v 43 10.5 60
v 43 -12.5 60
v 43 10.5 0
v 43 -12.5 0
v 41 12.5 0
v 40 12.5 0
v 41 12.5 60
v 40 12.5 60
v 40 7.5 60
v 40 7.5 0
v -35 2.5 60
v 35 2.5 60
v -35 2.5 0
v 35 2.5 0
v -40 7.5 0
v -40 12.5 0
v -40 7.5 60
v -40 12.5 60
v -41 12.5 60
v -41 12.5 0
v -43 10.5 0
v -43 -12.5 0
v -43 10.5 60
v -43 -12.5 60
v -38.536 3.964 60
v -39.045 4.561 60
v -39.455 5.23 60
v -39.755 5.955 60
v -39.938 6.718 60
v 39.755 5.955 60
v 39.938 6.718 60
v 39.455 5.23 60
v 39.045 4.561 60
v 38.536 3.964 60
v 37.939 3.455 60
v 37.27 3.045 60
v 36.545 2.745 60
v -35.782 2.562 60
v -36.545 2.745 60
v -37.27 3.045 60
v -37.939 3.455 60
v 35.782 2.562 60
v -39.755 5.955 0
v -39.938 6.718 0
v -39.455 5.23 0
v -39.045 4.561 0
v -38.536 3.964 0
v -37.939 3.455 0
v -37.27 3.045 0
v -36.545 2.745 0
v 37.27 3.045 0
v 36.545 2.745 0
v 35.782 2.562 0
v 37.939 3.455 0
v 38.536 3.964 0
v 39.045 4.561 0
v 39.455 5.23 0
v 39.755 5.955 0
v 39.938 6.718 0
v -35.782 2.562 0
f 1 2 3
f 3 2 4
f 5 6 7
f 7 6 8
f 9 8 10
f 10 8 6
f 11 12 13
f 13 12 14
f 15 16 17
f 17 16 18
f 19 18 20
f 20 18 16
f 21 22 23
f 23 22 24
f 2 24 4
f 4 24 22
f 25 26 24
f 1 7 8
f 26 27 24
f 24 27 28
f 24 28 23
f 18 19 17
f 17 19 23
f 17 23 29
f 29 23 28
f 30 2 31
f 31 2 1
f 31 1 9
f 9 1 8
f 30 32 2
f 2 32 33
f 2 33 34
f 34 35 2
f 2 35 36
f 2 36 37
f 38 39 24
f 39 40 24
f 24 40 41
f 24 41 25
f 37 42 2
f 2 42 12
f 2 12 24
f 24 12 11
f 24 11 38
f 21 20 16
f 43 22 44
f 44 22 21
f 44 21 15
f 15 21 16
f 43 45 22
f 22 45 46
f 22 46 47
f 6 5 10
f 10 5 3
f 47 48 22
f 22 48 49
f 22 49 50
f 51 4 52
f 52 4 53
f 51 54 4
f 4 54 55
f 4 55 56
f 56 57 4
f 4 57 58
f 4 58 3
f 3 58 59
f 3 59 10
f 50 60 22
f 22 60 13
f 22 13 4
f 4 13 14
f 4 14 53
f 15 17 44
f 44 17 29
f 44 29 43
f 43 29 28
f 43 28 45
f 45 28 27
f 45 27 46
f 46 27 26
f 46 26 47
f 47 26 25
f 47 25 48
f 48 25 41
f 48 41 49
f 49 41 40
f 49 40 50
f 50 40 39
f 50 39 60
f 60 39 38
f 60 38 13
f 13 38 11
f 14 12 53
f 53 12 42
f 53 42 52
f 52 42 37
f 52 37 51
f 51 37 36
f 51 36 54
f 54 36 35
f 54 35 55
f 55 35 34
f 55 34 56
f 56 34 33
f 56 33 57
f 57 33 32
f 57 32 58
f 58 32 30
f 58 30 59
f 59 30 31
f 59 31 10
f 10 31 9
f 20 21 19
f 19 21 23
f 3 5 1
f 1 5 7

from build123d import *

# Parameters (mm, degrees)
BOSS_EXTRUDE1_DEPTH = 60
FILLET1_R           = 5
CHAMFER1_SIZE       = 2


with BuildPart() as part:
    # Sketch1 → Boss-Extrude1 (new body)
    with BuildSketch(Plane.XY):
        Polygon((40, 12.5), (43, 12.5), (43, -12.5), (-43, -12.5), (-43, 12.5), (-40, 12.5), (-40, 2.5), (40, 2.5), align=None)
    extrude(amount=BOSS_EXTRUDE1_DEPTH)

    # Fillet1
    fillet1_edges = [part.edges().sort_by_distance(p)[0] for p in [
        (-40, 2.5, 30),
        (40, 2.5, 30),
    ]]
    fillet(fillet1_edges, radius=FILLET1_R)

    # Chamfer1
    chamfer1_edges = [part.edges().sort_by_distance(p)[0] for p in [
        (-43, 12.5, 30),
        (43, 12.5, 30),
    ]]
    chamfer(chamfer1_edges, length=CHAMFER1_SIZE)


solid = part.part
